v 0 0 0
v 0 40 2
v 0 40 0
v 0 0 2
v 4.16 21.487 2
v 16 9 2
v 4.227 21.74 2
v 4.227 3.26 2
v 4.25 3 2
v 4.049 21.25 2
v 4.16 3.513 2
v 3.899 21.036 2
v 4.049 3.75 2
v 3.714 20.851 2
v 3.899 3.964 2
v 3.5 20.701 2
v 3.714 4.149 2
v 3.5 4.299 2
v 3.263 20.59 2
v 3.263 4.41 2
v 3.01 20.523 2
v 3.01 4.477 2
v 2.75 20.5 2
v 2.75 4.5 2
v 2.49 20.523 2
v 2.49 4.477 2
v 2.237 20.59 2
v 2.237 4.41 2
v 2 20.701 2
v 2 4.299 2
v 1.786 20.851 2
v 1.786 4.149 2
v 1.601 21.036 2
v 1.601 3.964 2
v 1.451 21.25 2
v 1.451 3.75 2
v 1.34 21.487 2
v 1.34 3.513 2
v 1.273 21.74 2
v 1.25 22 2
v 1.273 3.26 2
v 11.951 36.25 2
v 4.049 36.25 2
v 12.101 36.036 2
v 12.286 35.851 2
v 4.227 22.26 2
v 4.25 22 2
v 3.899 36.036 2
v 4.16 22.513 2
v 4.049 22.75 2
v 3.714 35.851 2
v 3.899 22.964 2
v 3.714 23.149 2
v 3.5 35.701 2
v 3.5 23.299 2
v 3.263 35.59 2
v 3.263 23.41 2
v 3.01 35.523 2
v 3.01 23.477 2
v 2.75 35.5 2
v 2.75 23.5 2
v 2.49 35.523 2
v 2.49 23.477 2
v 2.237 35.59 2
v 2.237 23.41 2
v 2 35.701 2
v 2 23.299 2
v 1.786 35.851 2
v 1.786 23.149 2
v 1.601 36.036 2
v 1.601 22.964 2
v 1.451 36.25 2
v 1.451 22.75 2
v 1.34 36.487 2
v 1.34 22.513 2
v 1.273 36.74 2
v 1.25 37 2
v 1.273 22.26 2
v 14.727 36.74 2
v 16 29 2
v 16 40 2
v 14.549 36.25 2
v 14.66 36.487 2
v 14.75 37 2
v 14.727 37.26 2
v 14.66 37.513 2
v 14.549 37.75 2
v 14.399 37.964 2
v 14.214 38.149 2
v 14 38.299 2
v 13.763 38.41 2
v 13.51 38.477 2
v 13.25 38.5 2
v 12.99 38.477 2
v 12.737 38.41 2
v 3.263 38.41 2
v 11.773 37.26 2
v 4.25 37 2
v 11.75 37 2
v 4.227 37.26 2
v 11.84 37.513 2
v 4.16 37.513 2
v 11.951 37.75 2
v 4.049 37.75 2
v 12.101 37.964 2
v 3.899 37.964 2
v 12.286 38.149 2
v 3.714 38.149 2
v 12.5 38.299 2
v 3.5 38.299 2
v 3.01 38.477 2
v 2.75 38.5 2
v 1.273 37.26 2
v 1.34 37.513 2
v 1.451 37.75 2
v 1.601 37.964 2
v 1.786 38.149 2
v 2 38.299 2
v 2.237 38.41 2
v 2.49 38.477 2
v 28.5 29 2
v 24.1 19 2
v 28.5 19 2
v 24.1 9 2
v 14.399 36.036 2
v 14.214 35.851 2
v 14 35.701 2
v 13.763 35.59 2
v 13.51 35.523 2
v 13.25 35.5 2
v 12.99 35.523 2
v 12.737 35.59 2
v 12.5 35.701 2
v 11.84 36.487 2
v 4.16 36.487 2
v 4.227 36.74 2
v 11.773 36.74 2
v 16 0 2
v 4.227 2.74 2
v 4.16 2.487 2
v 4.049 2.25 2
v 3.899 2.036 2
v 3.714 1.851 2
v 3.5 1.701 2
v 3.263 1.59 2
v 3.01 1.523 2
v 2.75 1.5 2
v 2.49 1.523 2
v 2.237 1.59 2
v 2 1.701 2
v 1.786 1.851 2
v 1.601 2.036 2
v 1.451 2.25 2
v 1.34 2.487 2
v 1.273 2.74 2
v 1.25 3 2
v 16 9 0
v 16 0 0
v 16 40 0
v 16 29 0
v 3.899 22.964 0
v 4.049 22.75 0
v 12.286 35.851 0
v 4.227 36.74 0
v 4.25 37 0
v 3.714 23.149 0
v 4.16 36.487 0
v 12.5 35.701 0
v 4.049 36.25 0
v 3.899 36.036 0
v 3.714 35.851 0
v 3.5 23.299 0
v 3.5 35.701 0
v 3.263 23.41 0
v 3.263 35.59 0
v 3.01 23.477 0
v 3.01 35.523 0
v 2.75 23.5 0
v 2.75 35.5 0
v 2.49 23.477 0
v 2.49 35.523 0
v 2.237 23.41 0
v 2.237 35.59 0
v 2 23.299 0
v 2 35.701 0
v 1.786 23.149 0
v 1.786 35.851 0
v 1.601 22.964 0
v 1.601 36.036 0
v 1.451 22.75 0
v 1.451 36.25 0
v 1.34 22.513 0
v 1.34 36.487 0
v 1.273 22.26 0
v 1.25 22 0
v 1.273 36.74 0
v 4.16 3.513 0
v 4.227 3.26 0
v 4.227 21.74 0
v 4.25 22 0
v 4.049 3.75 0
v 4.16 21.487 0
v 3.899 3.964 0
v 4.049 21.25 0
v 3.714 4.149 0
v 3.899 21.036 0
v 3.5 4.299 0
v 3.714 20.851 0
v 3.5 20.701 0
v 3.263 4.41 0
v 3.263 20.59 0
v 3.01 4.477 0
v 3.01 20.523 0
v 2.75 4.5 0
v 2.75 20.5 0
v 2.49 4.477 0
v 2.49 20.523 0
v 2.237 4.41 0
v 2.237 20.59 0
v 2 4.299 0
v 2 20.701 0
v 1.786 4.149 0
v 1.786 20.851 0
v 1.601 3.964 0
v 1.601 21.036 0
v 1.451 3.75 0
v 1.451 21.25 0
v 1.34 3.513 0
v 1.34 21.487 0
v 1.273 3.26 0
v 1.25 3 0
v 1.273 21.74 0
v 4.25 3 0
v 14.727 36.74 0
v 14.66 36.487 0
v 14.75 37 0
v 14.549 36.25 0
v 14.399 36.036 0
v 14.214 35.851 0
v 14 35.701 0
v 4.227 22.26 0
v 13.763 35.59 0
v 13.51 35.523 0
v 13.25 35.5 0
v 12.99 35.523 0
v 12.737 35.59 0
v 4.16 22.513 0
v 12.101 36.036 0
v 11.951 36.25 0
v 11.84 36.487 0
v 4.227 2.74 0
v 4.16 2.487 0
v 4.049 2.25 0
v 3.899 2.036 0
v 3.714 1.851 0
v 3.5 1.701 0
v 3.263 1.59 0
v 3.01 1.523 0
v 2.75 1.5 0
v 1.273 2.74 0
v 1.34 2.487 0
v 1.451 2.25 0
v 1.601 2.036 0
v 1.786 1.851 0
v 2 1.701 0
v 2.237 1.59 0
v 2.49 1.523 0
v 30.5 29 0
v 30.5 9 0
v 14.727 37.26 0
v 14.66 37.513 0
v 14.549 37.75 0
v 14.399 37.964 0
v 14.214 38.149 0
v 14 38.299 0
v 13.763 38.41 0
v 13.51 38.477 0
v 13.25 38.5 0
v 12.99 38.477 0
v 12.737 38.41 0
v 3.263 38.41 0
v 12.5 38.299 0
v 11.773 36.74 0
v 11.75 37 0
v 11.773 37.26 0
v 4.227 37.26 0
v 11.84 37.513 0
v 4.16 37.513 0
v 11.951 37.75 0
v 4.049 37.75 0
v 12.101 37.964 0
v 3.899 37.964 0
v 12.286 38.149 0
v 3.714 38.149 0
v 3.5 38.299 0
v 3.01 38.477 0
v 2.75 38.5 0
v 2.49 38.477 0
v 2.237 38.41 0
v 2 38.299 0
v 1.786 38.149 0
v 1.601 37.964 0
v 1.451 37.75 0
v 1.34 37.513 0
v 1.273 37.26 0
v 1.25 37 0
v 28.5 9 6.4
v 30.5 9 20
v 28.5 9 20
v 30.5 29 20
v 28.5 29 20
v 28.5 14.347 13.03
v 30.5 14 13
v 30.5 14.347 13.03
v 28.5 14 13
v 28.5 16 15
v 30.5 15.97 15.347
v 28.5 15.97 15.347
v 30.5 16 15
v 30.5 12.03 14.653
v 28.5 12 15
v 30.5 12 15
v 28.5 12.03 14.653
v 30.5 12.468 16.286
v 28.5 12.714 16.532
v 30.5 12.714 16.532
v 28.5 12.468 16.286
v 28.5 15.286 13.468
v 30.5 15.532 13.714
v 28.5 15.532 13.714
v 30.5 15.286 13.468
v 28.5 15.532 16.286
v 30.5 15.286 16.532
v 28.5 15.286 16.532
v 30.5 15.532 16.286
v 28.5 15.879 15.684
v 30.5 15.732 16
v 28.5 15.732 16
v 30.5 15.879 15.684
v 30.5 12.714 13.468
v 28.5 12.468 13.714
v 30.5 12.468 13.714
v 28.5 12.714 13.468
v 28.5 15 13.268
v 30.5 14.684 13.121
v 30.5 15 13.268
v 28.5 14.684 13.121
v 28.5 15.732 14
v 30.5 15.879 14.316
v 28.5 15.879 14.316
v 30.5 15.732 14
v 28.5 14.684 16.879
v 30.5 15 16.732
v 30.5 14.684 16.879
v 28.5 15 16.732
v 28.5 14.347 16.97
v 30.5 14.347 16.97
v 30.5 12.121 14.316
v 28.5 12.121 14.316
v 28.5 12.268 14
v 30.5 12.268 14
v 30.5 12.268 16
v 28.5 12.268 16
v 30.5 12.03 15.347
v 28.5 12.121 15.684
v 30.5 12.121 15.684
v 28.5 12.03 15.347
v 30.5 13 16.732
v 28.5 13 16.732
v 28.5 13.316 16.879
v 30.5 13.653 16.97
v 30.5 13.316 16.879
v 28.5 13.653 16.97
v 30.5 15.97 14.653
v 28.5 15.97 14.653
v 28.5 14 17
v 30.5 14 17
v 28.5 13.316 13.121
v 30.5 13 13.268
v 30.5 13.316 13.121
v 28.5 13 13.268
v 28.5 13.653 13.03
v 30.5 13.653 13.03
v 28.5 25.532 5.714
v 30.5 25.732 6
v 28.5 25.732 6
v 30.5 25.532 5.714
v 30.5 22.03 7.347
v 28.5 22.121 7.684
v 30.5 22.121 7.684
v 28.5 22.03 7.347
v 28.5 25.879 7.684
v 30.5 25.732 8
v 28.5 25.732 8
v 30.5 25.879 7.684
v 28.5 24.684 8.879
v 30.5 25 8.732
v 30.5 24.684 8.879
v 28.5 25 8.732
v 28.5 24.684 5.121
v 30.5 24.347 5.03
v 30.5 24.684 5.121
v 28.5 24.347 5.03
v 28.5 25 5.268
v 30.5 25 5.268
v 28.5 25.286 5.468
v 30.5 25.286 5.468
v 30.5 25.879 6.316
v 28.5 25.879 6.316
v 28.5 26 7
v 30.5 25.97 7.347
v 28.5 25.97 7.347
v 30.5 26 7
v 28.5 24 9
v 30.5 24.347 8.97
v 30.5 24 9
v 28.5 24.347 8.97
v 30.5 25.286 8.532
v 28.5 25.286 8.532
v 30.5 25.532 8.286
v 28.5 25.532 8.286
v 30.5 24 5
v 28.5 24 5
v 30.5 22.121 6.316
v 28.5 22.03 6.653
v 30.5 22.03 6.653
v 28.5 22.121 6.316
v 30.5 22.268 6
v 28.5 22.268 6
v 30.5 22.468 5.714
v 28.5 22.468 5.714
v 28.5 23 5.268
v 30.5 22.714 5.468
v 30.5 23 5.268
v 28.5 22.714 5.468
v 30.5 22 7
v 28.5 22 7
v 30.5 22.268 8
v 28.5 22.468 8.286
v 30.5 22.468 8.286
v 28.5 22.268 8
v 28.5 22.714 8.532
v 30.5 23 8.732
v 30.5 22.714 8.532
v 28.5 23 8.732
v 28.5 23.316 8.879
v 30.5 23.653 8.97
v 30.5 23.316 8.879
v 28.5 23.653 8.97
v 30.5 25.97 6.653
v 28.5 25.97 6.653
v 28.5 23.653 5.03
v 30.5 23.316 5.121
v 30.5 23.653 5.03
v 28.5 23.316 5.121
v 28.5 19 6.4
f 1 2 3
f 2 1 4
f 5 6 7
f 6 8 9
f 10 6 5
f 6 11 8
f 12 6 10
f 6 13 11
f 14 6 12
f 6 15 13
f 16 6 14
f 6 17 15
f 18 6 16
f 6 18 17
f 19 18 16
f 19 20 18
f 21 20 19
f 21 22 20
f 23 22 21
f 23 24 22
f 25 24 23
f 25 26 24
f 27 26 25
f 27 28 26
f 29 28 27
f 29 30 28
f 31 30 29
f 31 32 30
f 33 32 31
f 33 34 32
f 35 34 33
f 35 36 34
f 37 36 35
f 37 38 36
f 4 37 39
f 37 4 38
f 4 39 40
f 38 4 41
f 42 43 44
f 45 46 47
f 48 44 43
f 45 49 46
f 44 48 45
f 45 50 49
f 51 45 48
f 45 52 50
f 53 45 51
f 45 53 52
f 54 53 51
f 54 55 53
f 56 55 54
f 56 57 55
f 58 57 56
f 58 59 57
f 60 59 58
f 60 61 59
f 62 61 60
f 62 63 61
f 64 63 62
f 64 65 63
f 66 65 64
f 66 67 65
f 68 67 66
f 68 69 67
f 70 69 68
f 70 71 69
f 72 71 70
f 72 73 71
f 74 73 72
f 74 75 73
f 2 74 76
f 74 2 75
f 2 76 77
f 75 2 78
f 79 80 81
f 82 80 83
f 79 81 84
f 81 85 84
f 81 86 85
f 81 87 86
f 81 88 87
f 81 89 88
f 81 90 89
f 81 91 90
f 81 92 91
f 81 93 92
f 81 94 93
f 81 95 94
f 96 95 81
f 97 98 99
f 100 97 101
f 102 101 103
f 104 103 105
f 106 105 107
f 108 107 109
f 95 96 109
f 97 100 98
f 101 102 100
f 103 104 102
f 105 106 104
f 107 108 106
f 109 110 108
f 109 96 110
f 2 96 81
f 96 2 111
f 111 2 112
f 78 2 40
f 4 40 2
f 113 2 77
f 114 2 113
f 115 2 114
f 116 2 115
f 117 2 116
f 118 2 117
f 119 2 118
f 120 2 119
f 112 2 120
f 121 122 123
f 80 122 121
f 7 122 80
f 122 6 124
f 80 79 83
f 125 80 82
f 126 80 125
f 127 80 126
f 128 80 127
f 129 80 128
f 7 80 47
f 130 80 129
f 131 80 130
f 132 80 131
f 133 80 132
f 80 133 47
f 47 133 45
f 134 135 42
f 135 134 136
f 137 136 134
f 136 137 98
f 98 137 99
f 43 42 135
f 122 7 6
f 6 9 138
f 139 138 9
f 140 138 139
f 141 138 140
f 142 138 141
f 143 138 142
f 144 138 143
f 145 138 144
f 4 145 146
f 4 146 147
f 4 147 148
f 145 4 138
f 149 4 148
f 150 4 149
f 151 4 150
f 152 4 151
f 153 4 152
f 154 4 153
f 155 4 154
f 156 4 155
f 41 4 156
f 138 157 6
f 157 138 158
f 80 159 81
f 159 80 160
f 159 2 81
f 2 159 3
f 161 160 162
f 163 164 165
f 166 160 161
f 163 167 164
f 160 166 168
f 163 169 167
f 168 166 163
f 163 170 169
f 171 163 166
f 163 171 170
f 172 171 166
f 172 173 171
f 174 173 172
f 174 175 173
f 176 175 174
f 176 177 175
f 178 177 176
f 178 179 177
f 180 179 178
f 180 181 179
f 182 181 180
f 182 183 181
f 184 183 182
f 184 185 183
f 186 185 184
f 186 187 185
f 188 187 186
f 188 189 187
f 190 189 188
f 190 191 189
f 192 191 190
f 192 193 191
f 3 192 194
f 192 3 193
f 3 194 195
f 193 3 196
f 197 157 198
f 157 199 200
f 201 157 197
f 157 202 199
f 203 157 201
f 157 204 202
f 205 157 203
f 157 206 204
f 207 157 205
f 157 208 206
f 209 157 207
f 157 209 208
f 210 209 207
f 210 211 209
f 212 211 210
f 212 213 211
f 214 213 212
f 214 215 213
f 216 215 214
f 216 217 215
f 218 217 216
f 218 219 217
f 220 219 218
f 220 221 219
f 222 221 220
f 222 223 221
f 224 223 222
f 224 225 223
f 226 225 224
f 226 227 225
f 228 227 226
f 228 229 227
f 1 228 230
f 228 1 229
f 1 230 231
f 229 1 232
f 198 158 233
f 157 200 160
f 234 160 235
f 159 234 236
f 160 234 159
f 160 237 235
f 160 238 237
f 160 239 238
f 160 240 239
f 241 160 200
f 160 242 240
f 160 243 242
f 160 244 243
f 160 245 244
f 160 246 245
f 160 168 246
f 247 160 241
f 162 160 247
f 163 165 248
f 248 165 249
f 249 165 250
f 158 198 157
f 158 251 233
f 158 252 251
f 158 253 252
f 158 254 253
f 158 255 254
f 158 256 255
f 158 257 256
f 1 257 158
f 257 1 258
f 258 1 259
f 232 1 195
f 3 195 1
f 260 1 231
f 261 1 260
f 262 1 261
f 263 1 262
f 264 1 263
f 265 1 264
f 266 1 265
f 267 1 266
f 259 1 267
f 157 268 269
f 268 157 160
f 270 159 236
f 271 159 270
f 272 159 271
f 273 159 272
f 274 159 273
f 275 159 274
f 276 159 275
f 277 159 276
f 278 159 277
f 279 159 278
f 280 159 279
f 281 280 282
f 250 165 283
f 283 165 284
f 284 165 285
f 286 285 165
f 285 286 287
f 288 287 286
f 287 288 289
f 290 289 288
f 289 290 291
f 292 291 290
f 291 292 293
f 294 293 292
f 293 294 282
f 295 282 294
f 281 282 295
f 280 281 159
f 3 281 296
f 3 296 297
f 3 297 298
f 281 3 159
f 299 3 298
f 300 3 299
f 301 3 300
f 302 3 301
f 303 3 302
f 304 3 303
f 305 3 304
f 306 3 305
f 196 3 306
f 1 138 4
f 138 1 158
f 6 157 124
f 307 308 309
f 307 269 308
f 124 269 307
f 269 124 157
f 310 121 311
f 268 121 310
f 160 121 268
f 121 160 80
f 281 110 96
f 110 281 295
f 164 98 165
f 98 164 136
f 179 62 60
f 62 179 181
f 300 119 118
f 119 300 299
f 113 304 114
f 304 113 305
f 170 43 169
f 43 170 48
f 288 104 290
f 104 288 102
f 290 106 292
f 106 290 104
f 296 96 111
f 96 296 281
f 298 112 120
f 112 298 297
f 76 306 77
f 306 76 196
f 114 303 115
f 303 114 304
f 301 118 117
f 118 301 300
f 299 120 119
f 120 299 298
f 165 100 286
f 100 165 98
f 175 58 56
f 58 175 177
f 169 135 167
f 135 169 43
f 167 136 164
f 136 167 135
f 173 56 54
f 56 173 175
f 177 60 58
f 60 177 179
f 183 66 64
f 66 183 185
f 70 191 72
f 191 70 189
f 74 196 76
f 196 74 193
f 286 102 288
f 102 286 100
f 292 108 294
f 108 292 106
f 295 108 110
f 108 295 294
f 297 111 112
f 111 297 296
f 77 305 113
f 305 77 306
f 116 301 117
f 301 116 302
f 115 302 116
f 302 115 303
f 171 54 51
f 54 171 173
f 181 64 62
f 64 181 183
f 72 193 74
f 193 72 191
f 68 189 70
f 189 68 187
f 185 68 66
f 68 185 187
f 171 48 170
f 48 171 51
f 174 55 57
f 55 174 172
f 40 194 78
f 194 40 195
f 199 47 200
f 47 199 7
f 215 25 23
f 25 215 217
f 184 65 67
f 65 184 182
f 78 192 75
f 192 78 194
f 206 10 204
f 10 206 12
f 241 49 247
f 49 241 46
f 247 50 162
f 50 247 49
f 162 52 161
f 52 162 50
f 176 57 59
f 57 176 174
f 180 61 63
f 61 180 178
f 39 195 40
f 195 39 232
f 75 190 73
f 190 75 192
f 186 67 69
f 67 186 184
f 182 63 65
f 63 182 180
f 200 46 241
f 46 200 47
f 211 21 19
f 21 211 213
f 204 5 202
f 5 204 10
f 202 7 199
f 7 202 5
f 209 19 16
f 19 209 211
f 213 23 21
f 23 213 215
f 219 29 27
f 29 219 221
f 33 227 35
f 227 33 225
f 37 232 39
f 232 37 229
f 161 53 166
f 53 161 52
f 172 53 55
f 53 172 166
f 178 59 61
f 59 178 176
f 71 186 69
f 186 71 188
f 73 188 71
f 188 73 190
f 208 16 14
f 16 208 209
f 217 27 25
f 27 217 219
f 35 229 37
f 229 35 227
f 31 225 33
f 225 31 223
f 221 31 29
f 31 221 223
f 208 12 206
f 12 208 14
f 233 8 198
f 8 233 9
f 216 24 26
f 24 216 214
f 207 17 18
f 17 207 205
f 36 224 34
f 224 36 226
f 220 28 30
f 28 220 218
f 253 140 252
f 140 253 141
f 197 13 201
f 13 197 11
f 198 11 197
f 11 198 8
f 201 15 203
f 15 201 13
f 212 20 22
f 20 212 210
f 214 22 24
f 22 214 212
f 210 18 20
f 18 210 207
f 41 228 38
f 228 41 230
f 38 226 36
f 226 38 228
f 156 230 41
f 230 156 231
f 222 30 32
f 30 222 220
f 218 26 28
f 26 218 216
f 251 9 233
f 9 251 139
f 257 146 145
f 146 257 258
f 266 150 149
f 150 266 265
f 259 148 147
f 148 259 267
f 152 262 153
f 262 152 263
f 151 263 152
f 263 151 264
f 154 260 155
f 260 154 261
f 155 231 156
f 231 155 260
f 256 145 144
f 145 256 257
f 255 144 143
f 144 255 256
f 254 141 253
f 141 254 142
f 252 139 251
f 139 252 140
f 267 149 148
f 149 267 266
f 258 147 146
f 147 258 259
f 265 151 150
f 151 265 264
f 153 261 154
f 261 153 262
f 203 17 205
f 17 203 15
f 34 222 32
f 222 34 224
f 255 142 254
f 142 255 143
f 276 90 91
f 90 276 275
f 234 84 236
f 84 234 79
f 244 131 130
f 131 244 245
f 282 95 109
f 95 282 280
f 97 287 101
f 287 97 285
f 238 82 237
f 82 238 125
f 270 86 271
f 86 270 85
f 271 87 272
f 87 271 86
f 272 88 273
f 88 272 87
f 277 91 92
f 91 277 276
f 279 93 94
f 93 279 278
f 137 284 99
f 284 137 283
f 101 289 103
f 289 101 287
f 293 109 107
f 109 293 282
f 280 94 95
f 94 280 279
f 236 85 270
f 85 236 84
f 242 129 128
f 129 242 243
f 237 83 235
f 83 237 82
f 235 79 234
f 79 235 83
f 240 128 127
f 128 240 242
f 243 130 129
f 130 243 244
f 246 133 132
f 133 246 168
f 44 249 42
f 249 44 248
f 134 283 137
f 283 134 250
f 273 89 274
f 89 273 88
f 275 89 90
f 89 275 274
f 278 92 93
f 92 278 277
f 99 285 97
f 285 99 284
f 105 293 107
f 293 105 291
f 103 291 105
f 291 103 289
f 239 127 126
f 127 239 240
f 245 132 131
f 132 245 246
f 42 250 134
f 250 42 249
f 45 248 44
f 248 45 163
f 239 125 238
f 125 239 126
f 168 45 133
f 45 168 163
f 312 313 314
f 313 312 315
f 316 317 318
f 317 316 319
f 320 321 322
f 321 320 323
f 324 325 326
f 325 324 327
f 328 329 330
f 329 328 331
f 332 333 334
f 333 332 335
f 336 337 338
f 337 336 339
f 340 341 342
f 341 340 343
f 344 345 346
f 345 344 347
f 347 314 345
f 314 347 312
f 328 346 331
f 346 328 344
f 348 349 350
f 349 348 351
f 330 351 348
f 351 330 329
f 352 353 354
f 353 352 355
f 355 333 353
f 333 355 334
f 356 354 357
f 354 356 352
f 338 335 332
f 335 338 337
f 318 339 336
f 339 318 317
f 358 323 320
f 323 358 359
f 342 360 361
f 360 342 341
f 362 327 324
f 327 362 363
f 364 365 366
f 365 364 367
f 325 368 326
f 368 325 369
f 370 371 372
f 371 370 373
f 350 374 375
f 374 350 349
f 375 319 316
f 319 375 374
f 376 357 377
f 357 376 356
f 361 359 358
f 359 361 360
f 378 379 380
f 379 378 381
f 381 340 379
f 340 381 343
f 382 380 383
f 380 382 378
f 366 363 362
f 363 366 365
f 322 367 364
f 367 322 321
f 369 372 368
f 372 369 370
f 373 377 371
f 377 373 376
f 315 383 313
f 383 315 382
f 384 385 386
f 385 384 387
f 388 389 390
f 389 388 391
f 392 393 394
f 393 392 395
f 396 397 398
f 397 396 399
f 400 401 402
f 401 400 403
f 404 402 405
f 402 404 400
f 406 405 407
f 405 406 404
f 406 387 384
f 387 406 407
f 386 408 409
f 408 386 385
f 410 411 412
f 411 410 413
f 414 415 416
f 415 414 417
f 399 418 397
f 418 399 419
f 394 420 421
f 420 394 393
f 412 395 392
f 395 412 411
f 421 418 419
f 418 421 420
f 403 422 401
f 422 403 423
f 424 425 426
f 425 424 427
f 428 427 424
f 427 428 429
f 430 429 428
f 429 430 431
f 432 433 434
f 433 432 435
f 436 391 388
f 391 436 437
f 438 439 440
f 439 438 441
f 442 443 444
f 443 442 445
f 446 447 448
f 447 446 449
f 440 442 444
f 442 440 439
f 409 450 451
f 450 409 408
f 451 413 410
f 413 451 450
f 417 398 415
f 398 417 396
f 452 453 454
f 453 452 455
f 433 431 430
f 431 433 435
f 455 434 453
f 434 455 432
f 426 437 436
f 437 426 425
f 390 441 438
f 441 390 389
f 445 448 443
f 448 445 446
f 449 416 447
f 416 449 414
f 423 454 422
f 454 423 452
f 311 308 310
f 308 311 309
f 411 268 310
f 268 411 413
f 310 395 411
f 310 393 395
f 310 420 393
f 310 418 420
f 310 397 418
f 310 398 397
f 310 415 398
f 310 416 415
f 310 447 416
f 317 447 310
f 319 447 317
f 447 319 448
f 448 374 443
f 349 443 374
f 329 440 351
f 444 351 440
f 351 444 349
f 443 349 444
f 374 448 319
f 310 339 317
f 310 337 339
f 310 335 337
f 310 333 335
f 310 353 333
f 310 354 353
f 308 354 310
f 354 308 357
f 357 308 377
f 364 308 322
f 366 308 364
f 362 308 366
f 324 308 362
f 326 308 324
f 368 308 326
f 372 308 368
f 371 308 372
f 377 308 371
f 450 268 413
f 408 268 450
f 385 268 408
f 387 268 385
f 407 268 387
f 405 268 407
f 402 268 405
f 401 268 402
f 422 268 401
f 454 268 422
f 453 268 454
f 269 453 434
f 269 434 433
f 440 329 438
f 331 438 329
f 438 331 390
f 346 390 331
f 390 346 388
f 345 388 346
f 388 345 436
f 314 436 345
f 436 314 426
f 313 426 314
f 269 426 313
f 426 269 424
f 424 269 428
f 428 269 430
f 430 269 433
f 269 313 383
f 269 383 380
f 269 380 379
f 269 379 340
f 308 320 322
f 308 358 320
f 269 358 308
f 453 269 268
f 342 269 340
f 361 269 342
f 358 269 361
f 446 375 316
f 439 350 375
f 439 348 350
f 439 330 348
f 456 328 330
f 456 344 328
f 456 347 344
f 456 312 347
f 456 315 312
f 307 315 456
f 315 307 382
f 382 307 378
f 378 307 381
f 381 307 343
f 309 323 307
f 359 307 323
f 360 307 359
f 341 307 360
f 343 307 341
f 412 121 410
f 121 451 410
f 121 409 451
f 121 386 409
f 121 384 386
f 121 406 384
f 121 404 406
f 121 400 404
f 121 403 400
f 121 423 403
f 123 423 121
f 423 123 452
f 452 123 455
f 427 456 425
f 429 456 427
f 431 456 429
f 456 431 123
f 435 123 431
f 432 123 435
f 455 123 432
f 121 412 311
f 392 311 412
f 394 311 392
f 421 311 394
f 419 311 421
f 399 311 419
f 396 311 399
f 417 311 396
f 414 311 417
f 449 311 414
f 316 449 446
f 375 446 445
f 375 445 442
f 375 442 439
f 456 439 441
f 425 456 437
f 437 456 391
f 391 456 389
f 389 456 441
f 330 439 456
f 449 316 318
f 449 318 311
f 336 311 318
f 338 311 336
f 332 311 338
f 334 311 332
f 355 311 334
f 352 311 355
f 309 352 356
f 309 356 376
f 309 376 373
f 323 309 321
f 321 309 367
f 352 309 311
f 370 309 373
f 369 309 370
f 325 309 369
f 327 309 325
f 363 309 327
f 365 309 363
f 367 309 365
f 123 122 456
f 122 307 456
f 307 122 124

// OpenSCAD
/* Support endstop pour Électrofraise (Y : axe horizontal le plus long)
   Quimper, la baleine, 6 mars 2020 / pierre<at>lesporteslogiques.net
   openscad version version 2019.05 @ kirin / debian 9.5 stretch 
*/

// plaque pour fixer le endstop
difference() {
    union() {
        cube(size=[16, 40, 2], center=false);
        translate([16, 9, 0]) cube(size=[14, 20, 2], center=false);
    }
    union() {
        translate([2.75, 37, -0.1]) cylinder( h=2.2, r=1.5, center=false, $fn=36);
        translate([2.75, 22, -0.1]) cylinder( h=2.2, r=1.5, center=false, $fn=36);
        translate([2.75, 3, -0.1]) cylinder( h=2.2, r=1.5, center=false, $fn=36);
        translate([13.25, 37, -0.1]) cylinder( h=2.2, r=1.5, center=false, $fn=36);
    }
}

// plaque de fixation à la fraiseuse
translate([28.5, 9, 20]) rotate(a=[0, 90, 0]) difference() {
    cube(size=[20, 20, 2], center=false);
    union() {
        translate([5, 5, -0.1]) cylinder( h=2.2, r=2, center=false, $fn=36);   
        translate([13, 15, -0.1]) cylinder( h=2.2, r=2, center=false, $fn=36);     
    }
}

// renfort
translate([24.1, 19, 2]) rotate([90, 0, 0]) linear_extrude(height=10) polygon(points = [ [0, 0], [5, 0], [5, 5] ]);
